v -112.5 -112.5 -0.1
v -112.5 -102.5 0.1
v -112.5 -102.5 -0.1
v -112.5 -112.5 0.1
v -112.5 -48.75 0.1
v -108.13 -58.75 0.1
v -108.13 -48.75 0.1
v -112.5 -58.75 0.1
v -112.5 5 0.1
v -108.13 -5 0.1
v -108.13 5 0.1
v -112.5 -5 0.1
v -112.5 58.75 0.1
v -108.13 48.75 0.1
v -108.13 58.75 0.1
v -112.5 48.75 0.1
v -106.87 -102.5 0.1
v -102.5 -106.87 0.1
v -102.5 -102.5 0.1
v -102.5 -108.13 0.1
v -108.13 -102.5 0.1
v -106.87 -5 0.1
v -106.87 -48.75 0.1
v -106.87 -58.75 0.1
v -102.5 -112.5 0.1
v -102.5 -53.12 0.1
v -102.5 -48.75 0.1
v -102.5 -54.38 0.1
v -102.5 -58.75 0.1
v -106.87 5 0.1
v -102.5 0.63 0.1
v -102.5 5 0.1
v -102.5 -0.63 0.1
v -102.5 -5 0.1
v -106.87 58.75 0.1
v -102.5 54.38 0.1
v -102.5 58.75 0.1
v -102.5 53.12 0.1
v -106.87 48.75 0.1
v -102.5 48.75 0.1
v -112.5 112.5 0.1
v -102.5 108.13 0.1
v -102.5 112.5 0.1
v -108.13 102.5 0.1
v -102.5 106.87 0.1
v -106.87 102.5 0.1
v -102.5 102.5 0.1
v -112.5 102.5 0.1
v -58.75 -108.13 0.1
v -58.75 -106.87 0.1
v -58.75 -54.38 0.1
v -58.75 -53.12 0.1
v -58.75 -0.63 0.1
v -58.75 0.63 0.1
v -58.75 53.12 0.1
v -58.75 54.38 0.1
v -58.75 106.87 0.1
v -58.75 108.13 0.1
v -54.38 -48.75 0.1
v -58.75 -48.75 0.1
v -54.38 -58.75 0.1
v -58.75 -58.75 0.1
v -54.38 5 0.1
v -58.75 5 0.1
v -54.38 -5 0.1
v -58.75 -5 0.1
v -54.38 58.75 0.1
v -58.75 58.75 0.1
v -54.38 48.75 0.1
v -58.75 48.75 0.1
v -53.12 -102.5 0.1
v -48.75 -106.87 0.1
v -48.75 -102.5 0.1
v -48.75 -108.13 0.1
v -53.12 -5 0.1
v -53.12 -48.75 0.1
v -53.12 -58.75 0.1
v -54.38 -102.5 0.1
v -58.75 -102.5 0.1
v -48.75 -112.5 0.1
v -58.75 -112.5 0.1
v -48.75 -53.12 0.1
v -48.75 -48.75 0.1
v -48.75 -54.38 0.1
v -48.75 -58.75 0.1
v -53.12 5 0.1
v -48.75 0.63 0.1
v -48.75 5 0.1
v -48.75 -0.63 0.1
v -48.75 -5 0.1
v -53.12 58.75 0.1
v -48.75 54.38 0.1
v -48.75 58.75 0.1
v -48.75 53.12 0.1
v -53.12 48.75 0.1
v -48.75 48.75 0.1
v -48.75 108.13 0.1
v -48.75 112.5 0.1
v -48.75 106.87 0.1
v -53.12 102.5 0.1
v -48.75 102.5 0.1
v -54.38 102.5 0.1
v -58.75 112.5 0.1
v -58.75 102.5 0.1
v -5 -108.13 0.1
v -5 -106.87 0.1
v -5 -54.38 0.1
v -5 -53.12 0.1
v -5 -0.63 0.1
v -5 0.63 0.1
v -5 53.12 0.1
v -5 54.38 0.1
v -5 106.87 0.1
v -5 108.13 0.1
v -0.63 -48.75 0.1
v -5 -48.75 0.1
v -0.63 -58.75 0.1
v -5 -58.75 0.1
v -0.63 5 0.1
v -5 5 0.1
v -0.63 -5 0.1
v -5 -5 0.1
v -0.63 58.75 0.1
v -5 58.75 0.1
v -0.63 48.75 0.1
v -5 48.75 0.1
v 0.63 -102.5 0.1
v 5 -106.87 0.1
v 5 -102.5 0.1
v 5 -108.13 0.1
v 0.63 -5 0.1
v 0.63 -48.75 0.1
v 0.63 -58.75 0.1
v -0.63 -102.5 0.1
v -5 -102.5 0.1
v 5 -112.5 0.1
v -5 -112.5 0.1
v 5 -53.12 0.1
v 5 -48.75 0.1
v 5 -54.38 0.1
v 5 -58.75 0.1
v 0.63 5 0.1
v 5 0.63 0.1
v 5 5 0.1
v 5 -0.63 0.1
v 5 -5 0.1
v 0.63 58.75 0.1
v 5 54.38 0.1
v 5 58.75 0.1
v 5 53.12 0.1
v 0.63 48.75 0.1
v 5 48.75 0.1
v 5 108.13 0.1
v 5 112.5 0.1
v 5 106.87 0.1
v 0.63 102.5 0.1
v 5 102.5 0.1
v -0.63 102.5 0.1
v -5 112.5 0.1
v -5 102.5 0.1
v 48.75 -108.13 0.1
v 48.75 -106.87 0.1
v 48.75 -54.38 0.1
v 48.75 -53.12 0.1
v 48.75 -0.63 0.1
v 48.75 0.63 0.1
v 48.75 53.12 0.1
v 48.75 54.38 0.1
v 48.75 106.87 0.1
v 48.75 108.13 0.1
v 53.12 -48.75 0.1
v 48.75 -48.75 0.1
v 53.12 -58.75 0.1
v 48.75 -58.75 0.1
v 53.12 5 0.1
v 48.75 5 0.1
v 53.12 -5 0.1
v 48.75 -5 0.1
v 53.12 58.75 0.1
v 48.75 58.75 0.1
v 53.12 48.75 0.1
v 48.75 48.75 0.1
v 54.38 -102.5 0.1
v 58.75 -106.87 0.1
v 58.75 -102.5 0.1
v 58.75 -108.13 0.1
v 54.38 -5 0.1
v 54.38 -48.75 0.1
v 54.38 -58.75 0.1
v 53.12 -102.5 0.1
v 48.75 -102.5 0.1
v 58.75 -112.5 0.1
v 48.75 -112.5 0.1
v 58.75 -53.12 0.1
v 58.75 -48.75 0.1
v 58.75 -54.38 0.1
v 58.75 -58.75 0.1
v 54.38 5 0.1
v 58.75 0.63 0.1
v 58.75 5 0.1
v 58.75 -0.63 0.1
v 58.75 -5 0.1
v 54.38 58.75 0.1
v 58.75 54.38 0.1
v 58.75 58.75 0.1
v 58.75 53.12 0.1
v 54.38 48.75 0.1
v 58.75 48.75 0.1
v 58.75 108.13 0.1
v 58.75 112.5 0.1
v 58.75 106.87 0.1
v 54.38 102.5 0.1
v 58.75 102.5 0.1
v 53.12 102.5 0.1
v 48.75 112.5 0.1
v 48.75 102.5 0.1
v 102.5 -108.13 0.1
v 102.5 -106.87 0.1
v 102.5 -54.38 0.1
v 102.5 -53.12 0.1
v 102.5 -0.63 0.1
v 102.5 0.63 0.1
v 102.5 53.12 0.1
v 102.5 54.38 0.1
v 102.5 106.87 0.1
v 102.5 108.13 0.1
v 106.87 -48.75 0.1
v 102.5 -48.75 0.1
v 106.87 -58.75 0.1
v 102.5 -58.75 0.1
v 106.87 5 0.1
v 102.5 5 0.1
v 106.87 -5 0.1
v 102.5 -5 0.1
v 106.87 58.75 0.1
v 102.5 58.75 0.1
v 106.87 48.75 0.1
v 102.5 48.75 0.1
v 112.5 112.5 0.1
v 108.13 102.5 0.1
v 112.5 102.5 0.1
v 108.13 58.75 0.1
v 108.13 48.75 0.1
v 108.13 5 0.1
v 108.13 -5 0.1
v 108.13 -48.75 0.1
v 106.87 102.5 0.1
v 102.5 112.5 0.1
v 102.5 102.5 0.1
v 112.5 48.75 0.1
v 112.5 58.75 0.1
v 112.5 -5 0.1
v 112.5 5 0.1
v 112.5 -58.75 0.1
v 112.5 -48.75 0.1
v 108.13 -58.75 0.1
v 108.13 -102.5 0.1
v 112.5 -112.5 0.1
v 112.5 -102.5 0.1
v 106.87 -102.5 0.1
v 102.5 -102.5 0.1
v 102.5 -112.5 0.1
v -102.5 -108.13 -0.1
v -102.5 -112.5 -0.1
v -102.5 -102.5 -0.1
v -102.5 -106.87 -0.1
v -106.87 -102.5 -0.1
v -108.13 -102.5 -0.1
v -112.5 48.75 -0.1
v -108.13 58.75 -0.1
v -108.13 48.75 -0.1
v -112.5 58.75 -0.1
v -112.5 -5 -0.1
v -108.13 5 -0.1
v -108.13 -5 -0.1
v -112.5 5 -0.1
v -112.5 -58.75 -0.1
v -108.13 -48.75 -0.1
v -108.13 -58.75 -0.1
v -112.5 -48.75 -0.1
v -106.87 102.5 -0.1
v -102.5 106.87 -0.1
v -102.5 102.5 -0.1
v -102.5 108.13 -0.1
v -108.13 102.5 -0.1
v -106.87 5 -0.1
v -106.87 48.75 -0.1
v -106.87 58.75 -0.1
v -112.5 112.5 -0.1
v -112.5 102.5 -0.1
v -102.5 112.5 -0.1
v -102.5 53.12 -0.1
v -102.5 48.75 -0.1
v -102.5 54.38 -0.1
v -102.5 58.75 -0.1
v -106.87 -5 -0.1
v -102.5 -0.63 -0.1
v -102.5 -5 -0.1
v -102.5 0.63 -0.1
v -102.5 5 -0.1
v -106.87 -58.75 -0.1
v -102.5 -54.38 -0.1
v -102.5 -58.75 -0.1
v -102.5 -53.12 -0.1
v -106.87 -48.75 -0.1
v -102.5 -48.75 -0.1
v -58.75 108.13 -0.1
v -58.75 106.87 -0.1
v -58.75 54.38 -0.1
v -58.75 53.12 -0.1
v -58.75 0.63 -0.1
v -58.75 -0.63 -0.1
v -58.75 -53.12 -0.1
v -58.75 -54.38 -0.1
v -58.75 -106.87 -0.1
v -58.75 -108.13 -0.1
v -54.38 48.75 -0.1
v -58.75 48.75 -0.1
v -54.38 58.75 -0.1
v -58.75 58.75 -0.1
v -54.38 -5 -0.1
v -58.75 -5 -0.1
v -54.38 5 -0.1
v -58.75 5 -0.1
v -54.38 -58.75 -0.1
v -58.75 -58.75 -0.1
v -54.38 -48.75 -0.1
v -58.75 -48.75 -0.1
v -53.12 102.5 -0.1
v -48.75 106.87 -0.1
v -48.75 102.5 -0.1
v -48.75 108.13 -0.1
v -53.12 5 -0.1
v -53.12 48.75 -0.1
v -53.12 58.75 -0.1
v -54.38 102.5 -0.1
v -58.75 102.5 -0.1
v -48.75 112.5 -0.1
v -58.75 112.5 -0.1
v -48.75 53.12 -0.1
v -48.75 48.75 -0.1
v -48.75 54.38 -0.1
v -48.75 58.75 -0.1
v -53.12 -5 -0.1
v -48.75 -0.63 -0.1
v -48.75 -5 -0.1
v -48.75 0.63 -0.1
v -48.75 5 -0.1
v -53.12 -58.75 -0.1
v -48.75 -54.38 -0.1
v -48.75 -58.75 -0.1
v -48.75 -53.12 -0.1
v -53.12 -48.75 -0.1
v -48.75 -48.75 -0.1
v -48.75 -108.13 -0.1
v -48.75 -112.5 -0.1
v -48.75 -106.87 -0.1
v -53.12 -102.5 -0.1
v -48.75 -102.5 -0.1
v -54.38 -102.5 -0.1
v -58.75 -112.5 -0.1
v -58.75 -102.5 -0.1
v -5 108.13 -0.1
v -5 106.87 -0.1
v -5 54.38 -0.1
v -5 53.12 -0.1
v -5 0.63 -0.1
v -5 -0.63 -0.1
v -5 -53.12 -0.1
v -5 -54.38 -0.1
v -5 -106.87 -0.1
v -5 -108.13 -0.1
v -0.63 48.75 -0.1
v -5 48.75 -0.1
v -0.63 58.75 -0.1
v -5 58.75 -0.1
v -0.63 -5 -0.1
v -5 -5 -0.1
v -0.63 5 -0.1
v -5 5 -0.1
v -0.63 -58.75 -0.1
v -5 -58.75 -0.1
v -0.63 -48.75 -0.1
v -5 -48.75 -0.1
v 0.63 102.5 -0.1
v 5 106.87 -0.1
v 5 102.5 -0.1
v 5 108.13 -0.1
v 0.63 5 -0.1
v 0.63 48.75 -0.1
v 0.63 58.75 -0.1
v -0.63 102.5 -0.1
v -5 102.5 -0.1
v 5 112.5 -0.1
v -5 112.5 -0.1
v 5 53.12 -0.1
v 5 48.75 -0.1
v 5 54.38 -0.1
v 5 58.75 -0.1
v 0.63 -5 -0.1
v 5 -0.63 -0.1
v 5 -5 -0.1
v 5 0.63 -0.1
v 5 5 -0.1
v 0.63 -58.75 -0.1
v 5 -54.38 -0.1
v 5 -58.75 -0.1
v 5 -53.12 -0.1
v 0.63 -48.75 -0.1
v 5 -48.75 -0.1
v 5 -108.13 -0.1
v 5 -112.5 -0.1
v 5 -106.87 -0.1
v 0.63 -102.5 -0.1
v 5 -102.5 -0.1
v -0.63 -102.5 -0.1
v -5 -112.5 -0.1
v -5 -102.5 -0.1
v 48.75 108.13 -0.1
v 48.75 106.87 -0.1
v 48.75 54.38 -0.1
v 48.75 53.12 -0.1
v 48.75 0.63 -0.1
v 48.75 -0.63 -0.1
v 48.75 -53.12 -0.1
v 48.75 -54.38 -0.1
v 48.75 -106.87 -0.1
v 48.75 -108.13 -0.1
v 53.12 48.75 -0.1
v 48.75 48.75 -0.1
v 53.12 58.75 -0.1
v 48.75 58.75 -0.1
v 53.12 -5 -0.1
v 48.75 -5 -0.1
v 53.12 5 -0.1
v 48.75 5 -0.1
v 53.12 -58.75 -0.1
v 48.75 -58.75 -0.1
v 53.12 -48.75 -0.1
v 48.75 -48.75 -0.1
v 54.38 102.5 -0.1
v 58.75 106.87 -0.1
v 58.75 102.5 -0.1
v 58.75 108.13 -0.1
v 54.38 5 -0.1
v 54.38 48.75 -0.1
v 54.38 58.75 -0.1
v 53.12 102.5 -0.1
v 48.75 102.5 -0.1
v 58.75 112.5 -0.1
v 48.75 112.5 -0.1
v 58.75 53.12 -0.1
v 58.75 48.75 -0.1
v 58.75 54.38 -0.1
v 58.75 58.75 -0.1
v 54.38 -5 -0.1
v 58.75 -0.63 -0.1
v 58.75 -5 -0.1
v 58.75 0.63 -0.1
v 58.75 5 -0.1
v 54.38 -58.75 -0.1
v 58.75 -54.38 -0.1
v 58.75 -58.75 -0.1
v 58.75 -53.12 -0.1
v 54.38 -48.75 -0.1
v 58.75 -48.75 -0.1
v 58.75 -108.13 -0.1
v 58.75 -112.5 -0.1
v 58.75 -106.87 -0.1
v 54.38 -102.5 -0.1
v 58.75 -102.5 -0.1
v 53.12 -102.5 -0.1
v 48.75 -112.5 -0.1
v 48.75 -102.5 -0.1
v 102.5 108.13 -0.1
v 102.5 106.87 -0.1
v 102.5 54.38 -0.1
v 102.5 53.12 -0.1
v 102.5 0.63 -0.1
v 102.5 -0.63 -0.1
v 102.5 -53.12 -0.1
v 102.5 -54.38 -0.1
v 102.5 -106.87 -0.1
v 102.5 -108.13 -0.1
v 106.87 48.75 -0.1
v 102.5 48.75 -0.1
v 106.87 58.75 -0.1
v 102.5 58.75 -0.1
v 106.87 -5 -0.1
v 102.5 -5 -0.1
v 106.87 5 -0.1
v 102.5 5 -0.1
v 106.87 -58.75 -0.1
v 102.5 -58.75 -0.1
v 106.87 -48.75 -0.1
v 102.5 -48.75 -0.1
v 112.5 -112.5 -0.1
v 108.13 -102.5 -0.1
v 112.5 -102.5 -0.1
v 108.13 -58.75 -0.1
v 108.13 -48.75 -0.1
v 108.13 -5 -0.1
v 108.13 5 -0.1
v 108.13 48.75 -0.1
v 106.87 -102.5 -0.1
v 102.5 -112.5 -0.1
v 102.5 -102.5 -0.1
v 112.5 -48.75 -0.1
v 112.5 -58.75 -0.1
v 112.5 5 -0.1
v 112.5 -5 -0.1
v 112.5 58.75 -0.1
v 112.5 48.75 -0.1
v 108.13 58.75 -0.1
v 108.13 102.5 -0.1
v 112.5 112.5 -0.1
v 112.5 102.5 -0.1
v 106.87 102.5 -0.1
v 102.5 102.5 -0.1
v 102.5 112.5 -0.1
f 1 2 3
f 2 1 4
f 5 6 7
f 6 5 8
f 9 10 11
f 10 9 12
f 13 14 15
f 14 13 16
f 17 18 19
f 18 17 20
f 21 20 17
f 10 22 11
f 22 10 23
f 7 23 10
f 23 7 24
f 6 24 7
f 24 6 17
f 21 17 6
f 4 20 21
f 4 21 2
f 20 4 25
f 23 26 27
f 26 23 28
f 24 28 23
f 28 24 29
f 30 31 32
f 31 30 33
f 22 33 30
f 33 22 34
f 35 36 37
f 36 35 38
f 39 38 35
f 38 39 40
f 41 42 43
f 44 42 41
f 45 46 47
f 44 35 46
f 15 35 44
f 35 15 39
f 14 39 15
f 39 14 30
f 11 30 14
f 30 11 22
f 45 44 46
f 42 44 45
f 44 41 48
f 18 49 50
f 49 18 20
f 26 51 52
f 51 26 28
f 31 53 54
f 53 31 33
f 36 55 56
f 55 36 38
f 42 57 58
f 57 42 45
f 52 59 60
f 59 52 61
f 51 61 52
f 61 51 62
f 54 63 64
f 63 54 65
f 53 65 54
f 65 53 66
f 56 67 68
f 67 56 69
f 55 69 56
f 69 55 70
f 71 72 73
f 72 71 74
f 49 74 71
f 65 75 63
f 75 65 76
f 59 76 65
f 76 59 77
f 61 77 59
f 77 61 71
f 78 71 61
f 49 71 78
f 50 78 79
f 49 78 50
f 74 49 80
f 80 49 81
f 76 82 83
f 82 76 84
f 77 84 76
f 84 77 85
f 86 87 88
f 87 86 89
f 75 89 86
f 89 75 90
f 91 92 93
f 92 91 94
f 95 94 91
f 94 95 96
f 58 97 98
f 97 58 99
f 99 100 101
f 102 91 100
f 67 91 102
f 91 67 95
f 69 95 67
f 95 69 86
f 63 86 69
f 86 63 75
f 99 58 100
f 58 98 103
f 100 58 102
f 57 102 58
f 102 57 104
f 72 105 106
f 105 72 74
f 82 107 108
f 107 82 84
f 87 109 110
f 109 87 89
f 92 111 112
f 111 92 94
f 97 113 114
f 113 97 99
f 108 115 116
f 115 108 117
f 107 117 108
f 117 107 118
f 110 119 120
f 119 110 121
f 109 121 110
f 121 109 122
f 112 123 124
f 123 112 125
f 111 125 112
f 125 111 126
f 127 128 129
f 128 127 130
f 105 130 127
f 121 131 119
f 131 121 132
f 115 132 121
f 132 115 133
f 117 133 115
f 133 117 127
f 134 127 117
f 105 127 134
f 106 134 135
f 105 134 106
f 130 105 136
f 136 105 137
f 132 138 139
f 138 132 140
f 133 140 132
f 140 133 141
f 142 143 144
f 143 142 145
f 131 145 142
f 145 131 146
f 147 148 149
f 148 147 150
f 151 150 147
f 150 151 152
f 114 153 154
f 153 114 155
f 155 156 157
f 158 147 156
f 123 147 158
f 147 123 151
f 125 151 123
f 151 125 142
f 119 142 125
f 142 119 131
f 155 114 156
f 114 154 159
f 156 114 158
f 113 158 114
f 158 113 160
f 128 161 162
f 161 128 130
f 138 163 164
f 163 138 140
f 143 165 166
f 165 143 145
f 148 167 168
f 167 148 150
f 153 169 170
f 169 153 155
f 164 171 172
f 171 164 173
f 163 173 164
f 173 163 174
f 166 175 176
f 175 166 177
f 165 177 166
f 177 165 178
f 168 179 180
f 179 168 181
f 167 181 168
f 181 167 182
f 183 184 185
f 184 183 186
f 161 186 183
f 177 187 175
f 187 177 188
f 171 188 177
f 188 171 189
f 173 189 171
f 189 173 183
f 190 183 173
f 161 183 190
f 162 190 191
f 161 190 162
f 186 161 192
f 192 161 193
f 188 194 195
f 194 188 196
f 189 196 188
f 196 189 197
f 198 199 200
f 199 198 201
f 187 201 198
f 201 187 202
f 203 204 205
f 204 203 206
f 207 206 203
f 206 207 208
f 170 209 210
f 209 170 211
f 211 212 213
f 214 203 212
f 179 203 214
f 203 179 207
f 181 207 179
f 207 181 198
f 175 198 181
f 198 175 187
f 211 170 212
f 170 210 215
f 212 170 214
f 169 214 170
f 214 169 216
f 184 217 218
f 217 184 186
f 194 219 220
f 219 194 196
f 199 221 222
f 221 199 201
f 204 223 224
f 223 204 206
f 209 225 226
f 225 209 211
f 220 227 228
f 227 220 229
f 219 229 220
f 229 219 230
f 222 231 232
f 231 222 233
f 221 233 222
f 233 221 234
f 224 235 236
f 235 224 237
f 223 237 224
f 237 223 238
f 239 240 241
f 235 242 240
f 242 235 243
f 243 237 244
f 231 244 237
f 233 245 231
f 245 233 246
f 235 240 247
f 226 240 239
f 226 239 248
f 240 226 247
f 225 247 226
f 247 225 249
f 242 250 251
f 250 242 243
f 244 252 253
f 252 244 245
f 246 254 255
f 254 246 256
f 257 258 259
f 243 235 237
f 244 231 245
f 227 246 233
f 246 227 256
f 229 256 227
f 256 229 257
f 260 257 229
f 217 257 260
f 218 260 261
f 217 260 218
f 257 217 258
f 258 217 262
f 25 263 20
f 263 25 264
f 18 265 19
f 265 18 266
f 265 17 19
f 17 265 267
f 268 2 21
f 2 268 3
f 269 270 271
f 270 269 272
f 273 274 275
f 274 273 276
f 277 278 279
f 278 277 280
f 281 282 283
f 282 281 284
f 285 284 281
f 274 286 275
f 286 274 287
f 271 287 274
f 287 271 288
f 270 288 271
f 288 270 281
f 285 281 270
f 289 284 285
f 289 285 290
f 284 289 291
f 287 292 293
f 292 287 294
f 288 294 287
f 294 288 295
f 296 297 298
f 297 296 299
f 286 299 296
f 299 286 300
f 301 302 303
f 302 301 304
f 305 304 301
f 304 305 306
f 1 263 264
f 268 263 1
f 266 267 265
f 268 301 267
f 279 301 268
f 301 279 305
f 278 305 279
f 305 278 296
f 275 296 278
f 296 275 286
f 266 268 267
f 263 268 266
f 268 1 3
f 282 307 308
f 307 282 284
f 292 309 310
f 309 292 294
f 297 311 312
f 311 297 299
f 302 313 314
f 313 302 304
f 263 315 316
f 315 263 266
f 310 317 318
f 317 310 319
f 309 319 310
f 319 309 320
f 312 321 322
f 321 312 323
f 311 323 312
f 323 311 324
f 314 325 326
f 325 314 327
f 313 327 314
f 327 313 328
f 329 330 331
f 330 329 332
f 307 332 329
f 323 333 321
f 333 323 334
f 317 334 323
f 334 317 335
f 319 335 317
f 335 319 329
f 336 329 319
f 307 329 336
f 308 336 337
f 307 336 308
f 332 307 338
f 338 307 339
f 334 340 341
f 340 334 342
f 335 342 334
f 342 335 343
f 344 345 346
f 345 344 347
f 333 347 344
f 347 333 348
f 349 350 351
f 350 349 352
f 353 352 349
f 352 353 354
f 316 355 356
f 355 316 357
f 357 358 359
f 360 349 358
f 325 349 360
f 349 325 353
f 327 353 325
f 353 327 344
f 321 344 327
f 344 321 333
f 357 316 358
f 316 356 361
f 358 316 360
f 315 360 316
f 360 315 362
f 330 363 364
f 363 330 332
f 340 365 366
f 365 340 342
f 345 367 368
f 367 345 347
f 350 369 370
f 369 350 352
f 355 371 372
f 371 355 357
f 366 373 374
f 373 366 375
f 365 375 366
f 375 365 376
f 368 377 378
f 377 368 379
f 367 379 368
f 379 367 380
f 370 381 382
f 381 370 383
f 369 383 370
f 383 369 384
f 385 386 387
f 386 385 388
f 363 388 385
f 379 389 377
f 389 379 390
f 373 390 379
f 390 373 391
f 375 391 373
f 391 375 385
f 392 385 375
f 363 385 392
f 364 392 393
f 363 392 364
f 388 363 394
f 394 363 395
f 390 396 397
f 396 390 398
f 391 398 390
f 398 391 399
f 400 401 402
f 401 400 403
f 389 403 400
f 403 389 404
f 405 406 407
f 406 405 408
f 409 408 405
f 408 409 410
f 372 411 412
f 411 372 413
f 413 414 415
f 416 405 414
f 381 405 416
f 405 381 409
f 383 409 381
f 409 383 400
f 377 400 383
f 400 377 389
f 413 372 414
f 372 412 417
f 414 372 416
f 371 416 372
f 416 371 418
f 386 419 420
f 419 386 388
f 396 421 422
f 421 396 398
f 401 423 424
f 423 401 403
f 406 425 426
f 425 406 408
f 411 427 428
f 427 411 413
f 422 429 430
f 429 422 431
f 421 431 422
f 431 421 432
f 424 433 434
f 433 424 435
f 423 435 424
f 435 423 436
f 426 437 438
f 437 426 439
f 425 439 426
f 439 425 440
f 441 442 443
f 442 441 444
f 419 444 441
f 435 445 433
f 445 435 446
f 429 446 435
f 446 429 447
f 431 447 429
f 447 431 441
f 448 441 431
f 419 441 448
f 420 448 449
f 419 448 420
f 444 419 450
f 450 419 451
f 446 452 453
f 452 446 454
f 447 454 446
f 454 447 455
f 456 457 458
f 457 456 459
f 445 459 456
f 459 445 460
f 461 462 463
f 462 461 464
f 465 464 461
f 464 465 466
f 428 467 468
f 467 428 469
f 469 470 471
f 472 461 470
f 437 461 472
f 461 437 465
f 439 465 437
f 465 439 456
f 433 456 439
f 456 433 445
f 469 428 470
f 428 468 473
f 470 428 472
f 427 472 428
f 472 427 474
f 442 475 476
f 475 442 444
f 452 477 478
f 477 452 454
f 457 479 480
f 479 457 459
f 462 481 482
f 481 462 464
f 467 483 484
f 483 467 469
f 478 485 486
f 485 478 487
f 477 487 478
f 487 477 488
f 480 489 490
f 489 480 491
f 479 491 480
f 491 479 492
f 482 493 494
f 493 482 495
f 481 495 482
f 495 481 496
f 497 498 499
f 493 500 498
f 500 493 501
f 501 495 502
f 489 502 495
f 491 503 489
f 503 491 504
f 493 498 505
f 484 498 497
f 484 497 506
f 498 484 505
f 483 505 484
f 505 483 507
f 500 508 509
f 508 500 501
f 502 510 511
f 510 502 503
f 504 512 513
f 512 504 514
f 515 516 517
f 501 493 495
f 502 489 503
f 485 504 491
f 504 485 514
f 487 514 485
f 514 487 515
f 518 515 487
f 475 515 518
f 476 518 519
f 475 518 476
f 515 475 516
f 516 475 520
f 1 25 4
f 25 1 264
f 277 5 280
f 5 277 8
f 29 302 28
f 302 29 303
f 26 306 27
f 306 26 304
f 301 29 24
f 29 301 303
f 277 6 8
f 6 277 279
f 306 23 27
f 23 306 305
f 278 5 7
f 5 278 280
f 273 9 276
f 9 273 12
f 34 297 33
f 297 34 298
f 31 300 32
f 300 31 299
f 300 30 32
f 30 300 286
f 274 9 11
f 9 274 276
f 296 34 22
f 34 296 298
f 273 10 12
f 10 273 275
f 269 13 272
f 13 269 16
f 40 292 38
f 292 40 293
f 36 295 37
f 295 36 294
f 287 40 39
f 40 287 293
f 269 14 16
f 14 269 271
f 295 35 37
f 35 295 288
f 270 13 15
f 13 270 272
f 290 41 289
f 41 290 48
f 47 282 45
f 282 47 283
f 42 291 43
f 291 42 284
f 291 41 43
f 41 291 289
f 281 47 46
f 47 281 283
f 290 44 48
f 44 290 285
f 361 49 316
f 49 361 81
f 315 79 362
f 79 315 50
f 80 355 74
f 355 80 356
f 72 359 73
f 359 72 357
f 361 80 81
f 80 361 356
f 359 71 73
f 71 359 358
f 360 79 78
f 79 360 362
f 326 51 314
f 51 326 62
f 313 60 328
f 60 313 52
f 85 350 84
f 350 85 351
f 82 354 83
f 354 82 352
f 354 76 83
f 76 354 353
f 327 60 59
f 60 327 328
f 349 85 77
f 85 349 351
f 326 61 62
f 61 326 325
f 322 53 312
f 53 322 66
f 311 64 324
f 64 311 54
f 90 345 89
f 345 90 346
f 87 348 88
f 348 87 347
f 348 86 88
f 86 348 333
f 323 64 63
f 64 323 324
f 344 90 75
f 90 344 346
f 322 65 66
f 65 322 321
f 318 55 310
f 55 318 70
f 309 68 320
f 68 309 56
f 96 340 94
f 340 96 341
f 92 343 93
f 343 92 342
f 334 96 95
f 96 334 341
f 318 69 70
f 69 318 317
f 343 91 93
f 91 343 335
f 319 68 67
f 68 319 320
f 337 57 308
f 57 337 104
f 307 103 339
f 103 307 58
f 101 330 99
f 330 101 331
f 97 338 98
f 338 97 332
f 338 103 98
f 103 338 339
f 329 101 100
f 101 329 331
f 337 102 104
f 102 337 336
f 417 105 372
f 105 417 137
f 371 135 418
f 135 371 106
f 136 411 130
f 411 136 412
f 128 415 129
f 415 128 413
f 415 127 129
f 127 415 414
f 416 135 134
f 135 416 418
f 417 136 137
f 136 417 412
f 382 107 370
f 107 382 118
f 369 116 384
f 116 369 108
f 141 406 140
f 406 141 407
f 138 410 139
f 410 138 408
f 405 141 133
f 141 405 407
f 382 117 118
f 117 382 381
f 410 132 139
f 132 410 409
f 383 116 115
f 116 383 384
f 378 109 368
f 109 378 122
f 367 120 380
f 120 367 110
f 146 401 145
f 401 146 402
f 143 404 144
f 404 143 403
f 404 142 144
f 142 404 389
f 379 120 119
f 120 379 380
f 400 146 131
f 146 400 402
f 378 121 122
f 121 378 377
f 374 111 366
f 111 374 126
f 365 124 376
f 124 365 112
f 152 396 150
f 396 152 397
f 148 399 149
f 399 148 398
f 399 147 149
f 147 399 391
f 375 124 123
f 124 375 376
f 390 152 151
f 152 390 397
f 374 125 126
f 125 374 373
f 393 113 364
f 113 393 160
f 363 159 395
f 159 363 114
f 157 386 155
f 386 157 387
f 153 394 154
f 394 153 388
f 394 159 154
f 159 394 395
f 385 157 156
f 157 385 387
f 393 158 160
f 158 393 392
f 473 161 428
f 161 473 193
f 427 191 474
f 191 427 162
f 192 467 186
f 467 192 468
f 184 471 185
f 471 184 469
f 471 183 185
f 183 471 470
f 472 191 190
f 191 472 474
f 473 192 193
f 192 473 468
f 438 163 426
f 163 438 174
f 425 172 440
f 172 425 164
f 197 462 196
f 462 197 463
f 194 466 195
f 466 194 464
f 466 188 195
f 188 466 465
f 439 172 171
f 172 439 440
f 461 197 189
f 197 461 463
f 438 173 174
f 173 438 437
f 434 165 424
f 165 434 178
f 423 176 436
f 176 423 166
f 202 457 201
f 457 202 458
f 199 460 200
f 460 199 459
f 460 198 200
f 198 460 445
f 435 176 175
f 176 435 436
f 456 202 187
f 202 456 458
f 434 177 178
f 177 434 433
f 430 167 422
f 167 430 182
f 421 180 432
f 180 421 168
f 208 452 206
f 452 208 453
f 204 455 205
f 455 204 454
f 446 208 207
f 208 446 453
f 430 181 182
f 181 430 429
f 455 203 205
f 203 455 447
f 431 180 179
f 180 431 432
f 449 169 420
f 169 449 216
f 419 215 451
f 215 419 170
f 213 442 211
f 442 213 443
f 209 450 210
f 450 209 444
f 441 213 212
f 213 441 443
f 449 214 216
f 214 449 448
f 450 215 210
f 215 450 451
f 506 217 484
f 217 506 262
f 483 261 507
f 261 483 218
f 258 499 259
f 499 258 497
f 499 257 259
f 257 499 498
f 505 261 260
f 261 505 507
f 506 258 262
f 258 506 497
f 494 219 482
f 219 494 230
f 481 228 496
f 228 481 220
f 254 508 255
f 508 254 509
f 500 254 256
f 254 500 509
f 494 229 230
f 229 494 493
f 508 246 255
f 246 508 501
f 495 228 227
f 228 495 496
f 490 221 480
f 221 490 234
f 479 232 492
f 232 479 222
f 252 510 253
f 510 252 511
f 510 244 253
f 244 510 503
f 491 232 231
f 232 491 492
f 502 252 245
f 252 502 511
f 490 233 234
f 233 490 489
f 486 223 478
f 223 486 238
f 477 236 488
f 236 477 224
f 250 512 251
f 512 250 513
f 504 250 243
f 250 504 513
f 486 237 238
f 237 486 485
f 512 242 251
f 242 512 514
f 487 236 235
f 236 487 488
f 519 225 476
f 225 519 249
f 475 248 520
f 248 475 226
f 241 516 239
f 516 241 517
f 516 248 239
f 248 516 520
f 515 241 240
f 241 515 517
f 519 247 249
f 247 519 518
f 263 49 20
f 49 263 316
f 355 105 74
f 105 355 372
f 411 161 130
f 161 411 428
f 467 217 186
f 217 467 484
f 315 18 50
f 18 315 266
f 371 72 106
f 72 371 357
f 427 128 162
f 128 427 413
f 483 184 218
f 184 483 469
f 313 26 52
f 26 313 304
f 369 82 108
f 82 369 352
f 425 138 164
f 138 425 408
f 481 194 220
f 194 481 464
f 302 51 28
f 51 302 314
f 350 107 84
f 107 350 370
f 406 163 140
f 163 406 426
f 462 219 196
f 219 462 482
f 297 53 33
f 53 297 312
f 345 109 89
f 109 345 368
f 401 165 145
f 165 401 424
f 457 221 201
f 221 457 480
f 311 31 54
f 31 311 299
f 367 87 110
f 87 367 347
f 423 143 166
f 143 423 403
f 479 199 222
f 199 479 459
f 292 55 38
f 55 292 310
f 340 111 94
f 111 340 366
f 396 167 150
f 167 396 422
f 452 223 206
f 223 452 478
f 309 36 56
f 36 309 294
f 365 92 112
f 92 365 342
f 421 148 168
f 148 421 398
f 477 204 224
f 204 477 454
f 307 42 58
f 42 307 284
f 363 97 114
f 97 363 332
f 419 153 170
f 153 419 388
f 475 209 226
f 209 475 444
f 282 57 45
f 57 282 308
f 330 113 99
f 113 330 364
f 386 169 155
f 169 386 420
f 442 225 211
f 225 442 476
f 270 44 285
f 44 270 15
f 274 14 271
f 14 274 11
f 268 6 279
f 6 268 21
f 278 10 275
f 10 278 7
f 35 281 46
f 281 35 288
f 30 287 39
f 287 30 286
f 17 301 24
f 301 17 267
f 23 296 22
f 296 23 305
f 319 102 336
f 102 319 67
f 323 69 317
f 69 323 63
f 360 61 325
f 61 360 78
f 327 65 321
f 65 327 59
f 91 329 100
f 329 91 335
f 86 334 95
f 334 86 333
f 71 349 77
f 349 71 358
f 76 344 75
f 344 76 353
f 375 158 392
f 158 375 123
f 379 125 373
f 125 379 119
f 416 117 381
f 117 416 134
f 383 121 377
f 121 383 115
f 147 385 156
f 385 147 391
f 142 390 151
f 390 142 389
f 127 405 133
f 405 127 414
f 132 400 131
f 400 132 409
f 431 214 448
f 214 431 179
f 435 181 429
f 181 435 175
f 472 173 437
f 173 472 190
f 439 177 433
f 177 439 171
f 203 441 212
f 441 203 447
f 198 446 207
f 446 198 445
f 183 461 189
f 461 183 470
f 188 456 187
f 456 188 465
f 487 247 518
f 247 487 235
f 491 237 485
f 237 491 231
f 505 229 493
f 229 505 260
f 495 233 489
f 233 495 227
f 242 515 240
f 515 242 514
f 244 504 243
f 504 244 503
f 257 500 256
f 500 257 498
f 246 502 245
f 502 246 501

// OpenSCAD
include <../3d-printer-testing-suite.scad>

/* [Hidden] */
color_scheme = ["lightblue"];
test_type = "bed_level";
